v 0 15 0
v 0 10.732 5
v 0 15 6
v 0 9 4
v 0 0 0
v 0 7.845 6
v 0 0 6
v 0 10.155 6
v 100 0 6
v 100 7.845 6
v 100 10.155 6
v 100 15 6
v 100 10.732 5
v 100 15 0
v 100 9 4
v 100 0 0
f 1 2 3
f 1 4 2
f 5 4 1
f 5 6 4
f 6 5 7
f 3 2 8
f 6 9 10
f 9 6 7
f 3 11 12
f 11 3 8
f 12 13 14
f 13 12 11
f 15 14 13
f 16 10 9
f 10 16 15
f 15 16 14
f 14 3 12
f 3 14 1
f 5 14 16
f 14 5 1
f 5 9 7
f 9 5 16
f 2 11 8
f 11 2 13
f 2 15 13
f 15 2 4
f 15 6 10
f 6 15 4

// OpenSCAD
difference() {
    cube([100, 15, 6]);
    translate([-1, 9, 4]) {
        rotate([30, 0, 0]) {
            cube([102, 2, 4]);
        }
    }
 }
